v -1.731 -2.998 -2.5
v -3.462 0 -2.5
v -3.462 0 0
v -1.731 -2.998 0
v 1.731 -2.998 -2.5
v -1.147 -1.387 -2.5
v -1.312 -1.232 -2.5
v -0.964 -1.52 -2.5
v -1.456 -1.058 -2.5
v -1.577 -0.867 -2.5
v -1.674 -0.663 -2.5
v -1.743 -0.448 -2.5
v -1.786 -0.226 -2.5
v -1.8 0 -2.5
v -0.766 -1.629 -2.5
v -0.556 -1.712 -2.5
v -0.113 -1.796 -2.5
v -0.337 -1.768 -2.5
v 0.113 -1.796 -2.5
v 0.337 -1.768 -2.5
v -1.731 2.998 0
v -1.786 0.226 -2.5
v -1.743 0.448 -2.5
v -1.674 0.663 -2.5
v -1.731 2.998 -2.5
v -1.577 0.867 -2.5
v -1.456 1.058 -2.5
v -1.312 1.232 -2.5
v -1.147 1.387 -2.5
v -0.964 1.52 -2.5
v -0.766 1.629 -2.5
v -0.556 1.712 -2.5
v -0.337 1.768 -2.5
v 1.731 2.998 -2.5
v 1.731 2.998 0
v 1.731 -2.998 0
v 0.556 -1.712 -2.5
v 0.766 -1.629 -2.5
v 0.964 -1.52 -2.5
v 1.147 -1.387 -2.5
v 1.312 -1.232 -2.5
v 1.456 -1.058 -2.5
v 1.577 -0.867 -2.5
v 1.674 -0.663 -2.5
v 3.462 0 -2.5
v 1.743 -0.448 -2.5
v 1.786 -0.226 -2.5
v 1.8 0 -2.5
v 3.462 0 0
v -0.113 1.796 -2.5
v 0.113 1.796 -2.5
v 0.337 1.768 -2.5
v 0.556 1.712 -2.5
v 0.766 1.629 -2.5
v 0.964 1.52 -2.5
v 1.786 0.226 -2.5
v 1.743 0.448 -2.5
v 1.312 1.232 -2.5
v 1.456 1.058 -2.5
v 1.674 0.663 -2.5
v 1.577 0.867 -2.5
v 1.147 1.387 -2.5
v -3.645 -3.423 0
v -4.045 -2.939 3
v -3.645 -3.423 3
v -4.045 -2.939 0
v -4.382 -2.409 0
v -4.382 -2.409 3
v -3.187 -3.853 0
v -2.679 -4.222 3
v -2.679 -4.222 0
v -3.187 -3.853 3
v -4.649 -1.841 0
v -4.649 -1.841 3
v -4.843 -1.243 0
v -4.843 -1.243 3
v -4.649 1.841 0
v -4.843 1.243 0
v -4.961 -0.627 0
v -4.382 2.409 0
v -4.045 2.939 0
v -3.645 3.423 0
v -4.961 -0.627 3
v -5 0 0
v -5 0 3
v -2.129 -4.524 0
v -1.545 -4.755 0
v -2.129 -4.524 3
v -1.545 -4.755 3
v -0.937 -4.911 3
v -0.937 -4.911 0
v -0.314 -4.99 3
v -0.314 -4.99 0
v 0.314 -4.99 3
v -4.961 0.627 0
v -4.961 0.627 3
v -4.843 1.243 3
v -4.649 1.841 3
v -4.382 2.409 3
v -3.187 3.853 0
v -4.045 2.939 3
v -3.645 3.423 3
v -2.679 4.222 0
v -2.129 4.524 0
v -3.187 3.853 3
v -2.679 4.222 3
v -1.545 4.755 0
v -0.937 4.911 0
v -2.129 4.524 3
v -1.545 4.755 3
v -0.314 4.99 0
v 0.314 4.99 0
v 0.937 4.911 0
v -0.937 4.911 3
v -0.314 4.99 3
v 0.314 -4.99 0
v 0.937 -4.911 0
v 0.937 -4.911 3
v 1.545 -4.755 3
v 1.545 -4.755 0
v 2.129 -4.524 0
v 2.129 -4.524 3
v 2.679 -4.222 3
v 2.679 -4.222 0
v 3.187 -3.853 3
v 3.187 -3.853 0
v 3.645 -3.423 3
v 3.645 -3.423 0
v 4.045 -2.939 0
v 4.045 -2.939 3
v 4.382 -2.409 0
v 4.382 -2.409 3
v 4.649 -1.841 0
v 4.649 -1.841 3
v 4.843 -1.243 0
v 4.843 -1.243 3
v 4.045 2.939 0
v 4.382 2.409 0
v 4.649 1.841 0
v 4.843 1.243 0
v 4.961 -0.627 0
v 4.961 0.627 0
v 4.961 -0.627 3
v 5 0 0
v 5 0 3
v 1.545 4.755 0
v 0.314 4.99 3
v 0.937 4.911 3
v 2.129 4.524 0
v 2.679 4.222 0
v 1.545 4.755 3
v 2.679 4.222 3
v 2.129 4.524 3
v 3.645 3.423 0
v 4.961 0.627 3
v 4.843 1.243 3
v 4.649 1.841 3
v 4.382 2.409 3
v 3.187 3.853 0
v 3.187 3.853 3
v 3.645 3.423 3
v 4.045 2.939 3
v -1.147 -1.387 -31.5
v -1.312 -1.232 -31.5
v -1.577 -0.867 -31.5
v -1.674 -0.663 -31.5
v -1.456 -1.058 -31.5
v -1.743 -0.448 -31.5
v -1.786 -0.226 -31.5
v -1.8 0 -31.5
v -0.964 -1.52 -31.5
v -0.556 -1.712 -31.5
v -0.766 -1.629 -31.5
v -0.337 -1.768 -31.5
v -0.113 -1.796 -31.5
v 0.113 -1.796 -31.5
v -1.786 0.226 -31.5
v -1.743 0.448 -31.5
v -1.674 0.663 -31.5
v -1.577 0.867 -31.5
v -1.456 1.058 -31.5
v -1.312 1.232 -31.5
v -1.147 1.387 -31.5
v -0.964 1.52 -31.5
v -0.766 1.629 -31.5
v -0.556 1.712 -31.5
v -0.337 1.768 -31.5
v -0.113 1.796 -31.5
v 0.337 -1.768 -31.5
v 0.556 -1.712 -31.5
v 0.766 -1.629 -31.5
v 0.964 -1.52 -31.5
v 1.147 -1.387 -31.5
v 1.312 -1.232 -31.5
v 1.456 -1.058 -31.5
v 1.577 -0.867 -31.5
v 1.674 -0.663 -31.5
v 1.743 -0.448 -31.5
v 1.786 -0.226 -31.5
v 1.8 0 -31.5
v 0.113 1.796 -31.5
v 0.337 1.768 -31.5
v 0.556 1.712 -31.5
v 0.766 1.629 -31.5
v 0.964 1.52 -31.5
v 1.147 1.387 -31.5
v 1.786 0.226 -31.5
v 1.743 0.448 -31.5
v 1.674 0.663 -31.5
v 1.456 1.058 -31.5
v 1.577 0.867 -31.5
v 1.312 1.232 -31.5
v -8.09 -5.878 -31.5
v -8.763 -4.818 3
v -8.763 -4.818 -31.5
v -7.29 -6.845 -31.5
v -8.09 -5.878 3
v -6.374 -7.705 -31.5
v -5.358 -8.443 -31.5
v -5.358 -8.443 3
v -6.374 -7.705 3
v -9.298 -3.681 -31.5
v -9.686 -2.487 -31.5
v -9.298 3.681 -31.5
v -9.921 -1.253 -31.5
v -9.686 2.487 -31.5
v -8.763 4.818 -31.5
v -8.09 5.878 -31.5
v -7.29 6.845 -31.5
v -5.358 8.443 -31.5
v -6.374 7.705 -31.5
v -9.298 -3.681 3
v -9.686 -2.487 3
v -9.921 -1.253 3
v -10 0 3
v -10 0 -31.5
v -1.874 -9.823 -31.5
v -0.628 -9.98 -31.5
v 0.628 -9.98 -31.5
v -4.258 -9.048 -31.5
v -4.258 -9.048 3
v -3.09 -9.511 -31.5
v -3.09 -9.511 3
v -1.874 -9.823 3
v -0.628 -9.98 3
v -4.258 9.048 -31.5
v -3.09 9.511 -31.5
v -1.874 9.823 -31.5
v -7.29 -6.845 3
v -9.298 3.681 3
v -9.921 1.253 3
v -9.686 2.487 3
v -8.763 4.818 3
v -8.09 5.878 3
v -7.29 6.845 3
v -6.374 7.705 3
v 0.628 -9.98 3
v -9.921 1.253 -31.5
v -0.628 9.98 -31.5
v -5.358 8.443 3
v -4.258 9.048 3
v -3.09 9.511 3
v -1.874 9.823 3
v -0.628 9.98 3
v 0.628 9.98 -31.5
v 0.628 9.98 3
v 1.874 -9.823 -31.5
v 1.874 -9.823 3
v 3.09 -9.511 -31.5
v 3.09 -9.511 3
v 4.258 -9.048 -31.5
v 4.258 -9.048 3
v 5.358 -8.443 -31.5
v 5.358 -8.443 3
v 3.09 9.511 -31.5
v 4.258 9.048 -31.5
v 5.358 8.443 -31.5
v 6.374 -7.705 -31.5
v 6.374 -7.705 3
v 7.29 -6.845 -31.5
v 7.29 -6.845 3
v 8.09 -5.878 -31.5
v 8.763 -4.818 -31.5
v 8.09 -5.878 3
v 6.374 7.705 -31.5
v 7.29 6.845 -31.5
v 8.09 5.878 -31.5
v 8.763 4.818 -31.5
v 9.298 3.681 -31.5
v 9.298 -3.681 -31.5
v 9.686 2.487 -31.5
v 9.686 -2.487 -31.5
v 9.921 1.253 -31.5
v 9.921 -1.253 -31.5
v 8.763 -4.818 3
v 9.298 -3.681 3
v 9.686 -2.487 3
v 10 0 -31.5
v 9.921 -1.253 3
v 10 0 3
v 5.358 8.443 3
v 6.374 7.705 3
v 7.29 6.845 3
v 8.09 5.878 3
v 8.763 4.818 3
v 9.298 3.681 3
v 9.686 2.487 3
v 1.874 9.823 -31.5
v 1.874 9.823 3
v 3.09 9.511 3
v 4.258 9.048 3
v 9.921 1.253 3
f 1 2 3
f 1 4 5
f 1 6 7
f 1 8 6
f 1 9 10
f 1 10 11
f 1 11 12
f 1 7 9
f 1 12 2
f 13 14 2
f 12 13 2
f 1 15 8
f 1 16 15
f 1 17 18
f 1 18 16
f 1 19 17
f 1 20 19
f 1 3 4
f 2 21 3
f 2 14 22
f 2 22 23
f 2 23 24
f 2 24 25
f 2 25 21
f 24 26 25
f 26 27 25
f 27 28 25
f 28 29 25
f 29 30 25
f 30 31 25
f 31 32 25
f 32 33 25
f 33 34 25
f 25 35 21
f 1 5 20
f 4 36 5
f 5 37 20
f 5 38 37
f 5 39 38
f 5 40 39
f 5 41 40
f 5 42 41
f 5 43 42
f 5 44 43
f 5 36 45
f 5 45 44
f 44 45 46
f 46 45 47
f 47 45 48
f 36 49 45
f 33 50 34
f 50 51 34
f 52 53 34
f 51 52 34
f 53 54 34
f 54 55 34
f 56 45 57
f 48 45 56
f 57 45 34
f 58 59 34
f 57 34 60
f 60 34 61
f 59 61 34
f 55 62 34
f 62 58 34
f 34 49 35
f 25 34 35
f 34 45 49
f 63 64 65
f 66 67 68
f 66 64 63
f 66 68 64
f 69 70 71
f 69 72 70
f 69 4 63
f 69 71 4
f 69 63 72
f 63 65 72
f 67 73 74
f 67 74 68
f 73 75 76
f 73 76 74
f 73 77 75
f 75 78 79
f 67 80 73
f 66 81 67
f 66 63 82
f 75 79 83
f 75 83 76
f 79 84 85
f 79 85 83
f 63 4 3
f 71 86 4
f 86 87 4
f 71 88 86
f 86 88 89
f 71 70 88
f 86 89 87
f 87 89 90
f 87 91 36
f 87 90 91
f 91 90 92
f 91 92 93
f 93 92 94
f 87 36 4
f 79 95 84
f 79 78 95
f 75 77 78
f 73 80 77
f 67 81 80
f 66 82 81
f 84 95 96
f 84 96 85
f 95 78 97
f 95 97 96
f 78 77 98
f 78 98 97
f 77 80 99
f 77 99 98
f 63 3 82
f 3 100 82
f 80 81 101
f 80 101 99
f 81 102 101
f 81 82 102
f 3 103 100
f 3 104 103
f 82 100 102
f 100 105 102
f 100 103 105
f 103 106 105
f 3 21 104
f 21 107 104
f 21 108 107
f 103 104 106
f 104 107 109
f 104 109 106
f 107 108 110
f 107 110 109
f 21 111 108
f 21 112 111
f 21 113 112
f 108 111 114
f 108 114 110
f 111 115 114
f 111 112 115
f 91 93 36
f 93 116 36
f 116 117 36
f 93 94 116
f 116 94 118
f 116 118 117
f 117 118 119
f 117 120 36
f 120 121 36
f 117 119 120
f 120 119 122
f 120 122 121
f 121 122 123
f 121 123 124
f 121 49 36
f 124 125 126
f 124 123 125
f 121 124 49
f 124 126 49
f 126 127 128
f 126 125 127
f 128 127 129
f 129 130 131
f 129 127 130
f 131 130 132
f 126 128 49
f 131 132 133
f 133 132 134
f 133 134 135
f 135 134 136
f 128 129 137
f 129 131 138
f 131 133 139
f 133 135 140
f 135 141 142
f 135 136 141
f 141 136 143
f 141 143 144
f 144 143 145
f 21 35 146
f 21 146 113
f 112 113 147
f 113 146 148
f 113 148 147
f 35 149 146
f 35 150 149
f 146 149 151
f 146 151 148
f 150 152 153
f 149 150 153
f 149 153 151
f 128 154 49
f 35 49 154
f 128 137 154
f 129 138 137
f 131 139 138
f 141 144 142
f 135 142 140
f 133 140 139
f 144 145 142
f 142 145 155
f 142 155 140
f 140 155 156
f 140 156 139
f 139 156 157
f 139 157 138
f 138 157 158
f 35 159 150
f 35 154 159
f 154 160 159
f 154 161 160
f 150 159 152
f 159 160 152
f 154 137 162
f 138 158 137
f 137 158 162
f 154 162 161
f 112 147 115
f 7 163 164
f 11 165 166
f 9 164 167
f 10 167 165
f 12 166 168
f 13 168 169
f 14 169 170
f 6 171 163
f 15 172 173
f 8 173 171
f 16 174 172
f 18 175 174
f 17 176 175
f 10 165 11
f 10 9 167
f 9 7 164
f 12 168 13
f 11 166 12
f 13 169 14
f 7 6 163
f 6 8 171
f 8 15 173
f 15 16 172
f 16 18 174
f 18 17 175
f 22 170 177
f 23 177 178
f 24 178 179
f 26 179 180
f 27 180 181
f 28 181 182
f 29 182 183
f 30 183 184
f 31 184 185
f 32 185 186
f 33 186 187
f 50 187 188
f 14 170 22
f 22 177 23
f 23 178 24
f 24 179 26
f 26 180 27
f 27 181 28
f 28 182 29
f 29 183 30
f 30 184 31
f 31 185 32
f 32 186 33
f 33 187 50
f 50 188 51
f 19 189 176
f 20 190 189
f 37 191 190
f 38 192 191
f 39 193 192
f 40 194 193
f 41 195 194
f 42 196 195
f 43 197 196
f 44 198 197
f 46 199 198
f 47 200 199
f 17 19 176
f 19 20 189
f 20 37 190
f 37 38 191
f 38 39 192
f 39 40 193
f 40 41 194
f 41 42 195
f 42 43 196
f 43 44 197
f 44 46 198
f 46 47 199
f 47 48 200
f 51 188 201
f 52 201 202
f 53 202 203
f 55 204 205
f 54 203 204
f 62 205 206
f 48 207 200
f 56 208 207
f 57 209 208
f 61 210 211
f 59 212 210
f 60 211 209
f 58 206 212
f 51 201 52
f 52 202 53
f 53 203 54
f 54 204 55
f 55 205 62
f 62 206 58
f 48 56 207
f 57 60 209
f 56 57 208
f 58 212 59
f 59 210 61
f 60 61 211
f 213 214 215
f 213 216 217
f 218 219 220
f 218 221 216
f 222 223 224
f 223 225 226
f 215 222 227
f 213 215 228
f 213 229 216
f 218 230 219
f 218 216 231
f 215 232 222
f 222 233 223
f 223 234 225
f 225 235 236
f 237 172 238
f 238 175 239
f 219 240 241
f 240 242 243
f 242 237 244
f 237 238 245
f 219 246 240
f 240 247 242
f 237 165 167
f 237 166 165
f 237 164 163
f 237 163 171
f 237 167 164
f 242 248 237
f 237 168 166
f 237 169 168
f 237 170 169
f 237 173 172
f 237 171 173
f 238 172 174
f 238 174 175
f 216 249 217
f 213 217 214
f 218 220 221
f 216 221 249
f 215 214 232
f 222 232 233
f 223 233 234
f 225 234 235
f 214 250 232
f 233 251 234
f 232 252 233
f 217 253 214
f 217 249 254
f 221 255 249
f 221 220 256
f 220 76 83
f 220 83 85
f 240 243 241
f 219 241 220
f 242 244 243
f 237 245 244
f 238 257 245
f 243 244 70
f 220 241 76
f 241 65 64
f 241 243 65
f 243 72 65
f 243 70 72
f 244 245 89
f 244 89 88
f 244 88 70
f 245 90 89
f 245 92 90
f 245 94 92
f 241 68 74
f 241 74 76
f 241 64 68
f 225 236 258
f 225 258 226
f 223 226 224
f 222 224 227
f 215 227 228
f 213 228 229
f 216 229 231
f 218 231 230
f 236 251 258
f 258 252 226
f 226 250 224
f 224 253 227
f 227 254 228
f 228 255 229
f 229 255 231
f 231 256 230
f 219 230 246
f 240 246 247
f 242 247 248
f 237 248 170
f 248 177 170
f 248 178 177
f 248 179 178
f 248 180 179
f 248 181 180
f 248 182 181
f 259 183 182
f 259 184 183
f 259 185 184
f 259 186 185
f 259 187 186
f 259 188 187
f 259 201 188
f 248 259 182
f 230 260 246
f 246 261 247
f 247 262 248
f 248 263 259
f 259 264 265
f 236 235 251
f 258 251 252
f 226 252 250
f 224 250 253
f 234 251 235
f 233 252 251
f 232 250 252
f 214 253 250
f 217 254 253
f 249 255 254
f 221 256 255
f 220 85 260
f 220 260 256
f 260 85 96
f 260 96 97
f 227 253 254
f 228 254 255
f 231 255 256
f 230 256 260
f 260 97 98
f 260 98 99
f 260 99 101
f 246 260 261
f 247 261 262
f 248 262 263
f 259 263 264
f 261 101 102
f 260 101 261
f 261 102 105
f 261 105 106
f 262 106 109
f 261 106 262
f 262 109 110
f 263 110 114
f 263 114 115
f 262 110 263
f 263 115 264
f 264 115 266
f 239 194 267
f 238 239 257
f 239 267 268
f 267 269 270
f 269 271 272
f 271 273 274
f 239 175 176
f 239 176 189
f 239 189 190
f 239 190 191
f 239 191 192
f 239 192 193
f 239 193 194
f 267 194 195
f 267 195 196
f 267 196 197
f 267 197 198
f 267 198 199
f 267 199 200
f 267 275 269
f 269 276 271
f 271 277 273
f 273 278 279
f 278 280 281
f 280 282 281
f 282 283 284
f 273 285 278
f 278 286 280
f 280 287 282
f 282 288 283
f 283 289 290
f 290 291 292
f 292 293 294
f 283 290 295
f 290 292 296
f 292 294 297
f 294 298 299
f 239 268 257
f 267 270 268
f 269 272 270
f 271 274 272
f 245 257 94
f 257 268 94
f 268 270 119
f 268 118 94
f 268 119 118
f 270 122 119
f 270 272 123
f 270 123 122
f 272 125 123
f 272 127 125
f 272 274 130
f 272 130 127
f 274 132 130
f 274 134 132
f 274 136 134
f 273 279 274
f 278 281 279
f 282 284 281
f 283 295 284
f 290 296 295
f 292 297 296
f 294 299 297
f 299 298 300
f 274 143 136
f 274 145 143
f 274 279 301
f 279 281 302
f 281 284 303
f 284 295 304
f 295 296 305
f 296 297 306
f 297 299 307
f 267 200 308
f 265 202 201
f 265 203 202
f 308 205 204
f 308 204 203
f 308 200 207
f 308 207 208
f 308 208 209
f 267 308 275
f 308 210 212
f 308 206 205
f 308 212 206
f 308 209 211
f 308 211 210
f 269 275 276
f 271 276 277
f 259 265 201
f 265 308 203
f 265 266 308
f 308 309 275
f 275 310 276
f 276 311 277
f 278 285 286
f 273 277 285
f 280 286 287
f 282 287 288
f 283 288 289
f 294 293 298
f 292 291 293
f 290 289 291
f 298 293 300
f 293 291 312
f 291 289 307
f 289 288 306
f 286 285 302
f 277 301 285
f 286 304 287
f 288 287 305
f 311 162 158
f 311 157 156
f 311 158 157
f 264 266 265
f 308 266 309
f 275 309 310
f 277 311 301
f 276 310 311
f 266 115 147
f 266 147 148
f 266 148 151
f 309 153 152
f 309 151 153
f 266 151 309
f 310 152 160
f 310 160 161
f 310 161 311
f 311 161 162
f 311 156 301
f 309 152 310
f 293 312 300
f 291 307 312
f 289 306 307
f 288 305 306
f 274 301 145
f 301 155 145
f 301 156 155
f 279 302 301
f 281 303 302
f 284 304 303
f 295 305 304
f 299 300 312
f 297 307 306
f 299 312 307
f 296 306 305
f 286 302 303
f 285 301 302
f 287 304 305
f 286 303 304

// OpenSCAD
$fn = 50;

difference() {
	union() {
		translate(v = [0, 0, -31.5]) {
			cylinder(h = 34.5, r = 10.0);
		}
	}
	union() {
		translate(v = [0, 0, 0]) {
			rotate(a = [0, 0, 0]) {
				difference() {
					union() {
						translate(v = [0, 0, -2.5]) {
							linear_extrude(height = 2.5) {
								polygon(points = [[3.4619999999999997, 0.0], [1.7310000000000003, 2.9981799479017264], [-1.7309999999999992, 2.9981799479017264], [-3.4619999999999997, 4.2397272186481365e-16], [-1.7310000000000014, -2.998179947901726], [1.7309999999999977, -2.9981799479017277]]);
							}
						}
					}
					union();
				}
			}
		}
		#cylinder(h = 3, r = 5.0);
		#translate(v = [0, 0, -100.0]) {
			cylinder(h = 200, r = 1.8);
		}
	}
}
